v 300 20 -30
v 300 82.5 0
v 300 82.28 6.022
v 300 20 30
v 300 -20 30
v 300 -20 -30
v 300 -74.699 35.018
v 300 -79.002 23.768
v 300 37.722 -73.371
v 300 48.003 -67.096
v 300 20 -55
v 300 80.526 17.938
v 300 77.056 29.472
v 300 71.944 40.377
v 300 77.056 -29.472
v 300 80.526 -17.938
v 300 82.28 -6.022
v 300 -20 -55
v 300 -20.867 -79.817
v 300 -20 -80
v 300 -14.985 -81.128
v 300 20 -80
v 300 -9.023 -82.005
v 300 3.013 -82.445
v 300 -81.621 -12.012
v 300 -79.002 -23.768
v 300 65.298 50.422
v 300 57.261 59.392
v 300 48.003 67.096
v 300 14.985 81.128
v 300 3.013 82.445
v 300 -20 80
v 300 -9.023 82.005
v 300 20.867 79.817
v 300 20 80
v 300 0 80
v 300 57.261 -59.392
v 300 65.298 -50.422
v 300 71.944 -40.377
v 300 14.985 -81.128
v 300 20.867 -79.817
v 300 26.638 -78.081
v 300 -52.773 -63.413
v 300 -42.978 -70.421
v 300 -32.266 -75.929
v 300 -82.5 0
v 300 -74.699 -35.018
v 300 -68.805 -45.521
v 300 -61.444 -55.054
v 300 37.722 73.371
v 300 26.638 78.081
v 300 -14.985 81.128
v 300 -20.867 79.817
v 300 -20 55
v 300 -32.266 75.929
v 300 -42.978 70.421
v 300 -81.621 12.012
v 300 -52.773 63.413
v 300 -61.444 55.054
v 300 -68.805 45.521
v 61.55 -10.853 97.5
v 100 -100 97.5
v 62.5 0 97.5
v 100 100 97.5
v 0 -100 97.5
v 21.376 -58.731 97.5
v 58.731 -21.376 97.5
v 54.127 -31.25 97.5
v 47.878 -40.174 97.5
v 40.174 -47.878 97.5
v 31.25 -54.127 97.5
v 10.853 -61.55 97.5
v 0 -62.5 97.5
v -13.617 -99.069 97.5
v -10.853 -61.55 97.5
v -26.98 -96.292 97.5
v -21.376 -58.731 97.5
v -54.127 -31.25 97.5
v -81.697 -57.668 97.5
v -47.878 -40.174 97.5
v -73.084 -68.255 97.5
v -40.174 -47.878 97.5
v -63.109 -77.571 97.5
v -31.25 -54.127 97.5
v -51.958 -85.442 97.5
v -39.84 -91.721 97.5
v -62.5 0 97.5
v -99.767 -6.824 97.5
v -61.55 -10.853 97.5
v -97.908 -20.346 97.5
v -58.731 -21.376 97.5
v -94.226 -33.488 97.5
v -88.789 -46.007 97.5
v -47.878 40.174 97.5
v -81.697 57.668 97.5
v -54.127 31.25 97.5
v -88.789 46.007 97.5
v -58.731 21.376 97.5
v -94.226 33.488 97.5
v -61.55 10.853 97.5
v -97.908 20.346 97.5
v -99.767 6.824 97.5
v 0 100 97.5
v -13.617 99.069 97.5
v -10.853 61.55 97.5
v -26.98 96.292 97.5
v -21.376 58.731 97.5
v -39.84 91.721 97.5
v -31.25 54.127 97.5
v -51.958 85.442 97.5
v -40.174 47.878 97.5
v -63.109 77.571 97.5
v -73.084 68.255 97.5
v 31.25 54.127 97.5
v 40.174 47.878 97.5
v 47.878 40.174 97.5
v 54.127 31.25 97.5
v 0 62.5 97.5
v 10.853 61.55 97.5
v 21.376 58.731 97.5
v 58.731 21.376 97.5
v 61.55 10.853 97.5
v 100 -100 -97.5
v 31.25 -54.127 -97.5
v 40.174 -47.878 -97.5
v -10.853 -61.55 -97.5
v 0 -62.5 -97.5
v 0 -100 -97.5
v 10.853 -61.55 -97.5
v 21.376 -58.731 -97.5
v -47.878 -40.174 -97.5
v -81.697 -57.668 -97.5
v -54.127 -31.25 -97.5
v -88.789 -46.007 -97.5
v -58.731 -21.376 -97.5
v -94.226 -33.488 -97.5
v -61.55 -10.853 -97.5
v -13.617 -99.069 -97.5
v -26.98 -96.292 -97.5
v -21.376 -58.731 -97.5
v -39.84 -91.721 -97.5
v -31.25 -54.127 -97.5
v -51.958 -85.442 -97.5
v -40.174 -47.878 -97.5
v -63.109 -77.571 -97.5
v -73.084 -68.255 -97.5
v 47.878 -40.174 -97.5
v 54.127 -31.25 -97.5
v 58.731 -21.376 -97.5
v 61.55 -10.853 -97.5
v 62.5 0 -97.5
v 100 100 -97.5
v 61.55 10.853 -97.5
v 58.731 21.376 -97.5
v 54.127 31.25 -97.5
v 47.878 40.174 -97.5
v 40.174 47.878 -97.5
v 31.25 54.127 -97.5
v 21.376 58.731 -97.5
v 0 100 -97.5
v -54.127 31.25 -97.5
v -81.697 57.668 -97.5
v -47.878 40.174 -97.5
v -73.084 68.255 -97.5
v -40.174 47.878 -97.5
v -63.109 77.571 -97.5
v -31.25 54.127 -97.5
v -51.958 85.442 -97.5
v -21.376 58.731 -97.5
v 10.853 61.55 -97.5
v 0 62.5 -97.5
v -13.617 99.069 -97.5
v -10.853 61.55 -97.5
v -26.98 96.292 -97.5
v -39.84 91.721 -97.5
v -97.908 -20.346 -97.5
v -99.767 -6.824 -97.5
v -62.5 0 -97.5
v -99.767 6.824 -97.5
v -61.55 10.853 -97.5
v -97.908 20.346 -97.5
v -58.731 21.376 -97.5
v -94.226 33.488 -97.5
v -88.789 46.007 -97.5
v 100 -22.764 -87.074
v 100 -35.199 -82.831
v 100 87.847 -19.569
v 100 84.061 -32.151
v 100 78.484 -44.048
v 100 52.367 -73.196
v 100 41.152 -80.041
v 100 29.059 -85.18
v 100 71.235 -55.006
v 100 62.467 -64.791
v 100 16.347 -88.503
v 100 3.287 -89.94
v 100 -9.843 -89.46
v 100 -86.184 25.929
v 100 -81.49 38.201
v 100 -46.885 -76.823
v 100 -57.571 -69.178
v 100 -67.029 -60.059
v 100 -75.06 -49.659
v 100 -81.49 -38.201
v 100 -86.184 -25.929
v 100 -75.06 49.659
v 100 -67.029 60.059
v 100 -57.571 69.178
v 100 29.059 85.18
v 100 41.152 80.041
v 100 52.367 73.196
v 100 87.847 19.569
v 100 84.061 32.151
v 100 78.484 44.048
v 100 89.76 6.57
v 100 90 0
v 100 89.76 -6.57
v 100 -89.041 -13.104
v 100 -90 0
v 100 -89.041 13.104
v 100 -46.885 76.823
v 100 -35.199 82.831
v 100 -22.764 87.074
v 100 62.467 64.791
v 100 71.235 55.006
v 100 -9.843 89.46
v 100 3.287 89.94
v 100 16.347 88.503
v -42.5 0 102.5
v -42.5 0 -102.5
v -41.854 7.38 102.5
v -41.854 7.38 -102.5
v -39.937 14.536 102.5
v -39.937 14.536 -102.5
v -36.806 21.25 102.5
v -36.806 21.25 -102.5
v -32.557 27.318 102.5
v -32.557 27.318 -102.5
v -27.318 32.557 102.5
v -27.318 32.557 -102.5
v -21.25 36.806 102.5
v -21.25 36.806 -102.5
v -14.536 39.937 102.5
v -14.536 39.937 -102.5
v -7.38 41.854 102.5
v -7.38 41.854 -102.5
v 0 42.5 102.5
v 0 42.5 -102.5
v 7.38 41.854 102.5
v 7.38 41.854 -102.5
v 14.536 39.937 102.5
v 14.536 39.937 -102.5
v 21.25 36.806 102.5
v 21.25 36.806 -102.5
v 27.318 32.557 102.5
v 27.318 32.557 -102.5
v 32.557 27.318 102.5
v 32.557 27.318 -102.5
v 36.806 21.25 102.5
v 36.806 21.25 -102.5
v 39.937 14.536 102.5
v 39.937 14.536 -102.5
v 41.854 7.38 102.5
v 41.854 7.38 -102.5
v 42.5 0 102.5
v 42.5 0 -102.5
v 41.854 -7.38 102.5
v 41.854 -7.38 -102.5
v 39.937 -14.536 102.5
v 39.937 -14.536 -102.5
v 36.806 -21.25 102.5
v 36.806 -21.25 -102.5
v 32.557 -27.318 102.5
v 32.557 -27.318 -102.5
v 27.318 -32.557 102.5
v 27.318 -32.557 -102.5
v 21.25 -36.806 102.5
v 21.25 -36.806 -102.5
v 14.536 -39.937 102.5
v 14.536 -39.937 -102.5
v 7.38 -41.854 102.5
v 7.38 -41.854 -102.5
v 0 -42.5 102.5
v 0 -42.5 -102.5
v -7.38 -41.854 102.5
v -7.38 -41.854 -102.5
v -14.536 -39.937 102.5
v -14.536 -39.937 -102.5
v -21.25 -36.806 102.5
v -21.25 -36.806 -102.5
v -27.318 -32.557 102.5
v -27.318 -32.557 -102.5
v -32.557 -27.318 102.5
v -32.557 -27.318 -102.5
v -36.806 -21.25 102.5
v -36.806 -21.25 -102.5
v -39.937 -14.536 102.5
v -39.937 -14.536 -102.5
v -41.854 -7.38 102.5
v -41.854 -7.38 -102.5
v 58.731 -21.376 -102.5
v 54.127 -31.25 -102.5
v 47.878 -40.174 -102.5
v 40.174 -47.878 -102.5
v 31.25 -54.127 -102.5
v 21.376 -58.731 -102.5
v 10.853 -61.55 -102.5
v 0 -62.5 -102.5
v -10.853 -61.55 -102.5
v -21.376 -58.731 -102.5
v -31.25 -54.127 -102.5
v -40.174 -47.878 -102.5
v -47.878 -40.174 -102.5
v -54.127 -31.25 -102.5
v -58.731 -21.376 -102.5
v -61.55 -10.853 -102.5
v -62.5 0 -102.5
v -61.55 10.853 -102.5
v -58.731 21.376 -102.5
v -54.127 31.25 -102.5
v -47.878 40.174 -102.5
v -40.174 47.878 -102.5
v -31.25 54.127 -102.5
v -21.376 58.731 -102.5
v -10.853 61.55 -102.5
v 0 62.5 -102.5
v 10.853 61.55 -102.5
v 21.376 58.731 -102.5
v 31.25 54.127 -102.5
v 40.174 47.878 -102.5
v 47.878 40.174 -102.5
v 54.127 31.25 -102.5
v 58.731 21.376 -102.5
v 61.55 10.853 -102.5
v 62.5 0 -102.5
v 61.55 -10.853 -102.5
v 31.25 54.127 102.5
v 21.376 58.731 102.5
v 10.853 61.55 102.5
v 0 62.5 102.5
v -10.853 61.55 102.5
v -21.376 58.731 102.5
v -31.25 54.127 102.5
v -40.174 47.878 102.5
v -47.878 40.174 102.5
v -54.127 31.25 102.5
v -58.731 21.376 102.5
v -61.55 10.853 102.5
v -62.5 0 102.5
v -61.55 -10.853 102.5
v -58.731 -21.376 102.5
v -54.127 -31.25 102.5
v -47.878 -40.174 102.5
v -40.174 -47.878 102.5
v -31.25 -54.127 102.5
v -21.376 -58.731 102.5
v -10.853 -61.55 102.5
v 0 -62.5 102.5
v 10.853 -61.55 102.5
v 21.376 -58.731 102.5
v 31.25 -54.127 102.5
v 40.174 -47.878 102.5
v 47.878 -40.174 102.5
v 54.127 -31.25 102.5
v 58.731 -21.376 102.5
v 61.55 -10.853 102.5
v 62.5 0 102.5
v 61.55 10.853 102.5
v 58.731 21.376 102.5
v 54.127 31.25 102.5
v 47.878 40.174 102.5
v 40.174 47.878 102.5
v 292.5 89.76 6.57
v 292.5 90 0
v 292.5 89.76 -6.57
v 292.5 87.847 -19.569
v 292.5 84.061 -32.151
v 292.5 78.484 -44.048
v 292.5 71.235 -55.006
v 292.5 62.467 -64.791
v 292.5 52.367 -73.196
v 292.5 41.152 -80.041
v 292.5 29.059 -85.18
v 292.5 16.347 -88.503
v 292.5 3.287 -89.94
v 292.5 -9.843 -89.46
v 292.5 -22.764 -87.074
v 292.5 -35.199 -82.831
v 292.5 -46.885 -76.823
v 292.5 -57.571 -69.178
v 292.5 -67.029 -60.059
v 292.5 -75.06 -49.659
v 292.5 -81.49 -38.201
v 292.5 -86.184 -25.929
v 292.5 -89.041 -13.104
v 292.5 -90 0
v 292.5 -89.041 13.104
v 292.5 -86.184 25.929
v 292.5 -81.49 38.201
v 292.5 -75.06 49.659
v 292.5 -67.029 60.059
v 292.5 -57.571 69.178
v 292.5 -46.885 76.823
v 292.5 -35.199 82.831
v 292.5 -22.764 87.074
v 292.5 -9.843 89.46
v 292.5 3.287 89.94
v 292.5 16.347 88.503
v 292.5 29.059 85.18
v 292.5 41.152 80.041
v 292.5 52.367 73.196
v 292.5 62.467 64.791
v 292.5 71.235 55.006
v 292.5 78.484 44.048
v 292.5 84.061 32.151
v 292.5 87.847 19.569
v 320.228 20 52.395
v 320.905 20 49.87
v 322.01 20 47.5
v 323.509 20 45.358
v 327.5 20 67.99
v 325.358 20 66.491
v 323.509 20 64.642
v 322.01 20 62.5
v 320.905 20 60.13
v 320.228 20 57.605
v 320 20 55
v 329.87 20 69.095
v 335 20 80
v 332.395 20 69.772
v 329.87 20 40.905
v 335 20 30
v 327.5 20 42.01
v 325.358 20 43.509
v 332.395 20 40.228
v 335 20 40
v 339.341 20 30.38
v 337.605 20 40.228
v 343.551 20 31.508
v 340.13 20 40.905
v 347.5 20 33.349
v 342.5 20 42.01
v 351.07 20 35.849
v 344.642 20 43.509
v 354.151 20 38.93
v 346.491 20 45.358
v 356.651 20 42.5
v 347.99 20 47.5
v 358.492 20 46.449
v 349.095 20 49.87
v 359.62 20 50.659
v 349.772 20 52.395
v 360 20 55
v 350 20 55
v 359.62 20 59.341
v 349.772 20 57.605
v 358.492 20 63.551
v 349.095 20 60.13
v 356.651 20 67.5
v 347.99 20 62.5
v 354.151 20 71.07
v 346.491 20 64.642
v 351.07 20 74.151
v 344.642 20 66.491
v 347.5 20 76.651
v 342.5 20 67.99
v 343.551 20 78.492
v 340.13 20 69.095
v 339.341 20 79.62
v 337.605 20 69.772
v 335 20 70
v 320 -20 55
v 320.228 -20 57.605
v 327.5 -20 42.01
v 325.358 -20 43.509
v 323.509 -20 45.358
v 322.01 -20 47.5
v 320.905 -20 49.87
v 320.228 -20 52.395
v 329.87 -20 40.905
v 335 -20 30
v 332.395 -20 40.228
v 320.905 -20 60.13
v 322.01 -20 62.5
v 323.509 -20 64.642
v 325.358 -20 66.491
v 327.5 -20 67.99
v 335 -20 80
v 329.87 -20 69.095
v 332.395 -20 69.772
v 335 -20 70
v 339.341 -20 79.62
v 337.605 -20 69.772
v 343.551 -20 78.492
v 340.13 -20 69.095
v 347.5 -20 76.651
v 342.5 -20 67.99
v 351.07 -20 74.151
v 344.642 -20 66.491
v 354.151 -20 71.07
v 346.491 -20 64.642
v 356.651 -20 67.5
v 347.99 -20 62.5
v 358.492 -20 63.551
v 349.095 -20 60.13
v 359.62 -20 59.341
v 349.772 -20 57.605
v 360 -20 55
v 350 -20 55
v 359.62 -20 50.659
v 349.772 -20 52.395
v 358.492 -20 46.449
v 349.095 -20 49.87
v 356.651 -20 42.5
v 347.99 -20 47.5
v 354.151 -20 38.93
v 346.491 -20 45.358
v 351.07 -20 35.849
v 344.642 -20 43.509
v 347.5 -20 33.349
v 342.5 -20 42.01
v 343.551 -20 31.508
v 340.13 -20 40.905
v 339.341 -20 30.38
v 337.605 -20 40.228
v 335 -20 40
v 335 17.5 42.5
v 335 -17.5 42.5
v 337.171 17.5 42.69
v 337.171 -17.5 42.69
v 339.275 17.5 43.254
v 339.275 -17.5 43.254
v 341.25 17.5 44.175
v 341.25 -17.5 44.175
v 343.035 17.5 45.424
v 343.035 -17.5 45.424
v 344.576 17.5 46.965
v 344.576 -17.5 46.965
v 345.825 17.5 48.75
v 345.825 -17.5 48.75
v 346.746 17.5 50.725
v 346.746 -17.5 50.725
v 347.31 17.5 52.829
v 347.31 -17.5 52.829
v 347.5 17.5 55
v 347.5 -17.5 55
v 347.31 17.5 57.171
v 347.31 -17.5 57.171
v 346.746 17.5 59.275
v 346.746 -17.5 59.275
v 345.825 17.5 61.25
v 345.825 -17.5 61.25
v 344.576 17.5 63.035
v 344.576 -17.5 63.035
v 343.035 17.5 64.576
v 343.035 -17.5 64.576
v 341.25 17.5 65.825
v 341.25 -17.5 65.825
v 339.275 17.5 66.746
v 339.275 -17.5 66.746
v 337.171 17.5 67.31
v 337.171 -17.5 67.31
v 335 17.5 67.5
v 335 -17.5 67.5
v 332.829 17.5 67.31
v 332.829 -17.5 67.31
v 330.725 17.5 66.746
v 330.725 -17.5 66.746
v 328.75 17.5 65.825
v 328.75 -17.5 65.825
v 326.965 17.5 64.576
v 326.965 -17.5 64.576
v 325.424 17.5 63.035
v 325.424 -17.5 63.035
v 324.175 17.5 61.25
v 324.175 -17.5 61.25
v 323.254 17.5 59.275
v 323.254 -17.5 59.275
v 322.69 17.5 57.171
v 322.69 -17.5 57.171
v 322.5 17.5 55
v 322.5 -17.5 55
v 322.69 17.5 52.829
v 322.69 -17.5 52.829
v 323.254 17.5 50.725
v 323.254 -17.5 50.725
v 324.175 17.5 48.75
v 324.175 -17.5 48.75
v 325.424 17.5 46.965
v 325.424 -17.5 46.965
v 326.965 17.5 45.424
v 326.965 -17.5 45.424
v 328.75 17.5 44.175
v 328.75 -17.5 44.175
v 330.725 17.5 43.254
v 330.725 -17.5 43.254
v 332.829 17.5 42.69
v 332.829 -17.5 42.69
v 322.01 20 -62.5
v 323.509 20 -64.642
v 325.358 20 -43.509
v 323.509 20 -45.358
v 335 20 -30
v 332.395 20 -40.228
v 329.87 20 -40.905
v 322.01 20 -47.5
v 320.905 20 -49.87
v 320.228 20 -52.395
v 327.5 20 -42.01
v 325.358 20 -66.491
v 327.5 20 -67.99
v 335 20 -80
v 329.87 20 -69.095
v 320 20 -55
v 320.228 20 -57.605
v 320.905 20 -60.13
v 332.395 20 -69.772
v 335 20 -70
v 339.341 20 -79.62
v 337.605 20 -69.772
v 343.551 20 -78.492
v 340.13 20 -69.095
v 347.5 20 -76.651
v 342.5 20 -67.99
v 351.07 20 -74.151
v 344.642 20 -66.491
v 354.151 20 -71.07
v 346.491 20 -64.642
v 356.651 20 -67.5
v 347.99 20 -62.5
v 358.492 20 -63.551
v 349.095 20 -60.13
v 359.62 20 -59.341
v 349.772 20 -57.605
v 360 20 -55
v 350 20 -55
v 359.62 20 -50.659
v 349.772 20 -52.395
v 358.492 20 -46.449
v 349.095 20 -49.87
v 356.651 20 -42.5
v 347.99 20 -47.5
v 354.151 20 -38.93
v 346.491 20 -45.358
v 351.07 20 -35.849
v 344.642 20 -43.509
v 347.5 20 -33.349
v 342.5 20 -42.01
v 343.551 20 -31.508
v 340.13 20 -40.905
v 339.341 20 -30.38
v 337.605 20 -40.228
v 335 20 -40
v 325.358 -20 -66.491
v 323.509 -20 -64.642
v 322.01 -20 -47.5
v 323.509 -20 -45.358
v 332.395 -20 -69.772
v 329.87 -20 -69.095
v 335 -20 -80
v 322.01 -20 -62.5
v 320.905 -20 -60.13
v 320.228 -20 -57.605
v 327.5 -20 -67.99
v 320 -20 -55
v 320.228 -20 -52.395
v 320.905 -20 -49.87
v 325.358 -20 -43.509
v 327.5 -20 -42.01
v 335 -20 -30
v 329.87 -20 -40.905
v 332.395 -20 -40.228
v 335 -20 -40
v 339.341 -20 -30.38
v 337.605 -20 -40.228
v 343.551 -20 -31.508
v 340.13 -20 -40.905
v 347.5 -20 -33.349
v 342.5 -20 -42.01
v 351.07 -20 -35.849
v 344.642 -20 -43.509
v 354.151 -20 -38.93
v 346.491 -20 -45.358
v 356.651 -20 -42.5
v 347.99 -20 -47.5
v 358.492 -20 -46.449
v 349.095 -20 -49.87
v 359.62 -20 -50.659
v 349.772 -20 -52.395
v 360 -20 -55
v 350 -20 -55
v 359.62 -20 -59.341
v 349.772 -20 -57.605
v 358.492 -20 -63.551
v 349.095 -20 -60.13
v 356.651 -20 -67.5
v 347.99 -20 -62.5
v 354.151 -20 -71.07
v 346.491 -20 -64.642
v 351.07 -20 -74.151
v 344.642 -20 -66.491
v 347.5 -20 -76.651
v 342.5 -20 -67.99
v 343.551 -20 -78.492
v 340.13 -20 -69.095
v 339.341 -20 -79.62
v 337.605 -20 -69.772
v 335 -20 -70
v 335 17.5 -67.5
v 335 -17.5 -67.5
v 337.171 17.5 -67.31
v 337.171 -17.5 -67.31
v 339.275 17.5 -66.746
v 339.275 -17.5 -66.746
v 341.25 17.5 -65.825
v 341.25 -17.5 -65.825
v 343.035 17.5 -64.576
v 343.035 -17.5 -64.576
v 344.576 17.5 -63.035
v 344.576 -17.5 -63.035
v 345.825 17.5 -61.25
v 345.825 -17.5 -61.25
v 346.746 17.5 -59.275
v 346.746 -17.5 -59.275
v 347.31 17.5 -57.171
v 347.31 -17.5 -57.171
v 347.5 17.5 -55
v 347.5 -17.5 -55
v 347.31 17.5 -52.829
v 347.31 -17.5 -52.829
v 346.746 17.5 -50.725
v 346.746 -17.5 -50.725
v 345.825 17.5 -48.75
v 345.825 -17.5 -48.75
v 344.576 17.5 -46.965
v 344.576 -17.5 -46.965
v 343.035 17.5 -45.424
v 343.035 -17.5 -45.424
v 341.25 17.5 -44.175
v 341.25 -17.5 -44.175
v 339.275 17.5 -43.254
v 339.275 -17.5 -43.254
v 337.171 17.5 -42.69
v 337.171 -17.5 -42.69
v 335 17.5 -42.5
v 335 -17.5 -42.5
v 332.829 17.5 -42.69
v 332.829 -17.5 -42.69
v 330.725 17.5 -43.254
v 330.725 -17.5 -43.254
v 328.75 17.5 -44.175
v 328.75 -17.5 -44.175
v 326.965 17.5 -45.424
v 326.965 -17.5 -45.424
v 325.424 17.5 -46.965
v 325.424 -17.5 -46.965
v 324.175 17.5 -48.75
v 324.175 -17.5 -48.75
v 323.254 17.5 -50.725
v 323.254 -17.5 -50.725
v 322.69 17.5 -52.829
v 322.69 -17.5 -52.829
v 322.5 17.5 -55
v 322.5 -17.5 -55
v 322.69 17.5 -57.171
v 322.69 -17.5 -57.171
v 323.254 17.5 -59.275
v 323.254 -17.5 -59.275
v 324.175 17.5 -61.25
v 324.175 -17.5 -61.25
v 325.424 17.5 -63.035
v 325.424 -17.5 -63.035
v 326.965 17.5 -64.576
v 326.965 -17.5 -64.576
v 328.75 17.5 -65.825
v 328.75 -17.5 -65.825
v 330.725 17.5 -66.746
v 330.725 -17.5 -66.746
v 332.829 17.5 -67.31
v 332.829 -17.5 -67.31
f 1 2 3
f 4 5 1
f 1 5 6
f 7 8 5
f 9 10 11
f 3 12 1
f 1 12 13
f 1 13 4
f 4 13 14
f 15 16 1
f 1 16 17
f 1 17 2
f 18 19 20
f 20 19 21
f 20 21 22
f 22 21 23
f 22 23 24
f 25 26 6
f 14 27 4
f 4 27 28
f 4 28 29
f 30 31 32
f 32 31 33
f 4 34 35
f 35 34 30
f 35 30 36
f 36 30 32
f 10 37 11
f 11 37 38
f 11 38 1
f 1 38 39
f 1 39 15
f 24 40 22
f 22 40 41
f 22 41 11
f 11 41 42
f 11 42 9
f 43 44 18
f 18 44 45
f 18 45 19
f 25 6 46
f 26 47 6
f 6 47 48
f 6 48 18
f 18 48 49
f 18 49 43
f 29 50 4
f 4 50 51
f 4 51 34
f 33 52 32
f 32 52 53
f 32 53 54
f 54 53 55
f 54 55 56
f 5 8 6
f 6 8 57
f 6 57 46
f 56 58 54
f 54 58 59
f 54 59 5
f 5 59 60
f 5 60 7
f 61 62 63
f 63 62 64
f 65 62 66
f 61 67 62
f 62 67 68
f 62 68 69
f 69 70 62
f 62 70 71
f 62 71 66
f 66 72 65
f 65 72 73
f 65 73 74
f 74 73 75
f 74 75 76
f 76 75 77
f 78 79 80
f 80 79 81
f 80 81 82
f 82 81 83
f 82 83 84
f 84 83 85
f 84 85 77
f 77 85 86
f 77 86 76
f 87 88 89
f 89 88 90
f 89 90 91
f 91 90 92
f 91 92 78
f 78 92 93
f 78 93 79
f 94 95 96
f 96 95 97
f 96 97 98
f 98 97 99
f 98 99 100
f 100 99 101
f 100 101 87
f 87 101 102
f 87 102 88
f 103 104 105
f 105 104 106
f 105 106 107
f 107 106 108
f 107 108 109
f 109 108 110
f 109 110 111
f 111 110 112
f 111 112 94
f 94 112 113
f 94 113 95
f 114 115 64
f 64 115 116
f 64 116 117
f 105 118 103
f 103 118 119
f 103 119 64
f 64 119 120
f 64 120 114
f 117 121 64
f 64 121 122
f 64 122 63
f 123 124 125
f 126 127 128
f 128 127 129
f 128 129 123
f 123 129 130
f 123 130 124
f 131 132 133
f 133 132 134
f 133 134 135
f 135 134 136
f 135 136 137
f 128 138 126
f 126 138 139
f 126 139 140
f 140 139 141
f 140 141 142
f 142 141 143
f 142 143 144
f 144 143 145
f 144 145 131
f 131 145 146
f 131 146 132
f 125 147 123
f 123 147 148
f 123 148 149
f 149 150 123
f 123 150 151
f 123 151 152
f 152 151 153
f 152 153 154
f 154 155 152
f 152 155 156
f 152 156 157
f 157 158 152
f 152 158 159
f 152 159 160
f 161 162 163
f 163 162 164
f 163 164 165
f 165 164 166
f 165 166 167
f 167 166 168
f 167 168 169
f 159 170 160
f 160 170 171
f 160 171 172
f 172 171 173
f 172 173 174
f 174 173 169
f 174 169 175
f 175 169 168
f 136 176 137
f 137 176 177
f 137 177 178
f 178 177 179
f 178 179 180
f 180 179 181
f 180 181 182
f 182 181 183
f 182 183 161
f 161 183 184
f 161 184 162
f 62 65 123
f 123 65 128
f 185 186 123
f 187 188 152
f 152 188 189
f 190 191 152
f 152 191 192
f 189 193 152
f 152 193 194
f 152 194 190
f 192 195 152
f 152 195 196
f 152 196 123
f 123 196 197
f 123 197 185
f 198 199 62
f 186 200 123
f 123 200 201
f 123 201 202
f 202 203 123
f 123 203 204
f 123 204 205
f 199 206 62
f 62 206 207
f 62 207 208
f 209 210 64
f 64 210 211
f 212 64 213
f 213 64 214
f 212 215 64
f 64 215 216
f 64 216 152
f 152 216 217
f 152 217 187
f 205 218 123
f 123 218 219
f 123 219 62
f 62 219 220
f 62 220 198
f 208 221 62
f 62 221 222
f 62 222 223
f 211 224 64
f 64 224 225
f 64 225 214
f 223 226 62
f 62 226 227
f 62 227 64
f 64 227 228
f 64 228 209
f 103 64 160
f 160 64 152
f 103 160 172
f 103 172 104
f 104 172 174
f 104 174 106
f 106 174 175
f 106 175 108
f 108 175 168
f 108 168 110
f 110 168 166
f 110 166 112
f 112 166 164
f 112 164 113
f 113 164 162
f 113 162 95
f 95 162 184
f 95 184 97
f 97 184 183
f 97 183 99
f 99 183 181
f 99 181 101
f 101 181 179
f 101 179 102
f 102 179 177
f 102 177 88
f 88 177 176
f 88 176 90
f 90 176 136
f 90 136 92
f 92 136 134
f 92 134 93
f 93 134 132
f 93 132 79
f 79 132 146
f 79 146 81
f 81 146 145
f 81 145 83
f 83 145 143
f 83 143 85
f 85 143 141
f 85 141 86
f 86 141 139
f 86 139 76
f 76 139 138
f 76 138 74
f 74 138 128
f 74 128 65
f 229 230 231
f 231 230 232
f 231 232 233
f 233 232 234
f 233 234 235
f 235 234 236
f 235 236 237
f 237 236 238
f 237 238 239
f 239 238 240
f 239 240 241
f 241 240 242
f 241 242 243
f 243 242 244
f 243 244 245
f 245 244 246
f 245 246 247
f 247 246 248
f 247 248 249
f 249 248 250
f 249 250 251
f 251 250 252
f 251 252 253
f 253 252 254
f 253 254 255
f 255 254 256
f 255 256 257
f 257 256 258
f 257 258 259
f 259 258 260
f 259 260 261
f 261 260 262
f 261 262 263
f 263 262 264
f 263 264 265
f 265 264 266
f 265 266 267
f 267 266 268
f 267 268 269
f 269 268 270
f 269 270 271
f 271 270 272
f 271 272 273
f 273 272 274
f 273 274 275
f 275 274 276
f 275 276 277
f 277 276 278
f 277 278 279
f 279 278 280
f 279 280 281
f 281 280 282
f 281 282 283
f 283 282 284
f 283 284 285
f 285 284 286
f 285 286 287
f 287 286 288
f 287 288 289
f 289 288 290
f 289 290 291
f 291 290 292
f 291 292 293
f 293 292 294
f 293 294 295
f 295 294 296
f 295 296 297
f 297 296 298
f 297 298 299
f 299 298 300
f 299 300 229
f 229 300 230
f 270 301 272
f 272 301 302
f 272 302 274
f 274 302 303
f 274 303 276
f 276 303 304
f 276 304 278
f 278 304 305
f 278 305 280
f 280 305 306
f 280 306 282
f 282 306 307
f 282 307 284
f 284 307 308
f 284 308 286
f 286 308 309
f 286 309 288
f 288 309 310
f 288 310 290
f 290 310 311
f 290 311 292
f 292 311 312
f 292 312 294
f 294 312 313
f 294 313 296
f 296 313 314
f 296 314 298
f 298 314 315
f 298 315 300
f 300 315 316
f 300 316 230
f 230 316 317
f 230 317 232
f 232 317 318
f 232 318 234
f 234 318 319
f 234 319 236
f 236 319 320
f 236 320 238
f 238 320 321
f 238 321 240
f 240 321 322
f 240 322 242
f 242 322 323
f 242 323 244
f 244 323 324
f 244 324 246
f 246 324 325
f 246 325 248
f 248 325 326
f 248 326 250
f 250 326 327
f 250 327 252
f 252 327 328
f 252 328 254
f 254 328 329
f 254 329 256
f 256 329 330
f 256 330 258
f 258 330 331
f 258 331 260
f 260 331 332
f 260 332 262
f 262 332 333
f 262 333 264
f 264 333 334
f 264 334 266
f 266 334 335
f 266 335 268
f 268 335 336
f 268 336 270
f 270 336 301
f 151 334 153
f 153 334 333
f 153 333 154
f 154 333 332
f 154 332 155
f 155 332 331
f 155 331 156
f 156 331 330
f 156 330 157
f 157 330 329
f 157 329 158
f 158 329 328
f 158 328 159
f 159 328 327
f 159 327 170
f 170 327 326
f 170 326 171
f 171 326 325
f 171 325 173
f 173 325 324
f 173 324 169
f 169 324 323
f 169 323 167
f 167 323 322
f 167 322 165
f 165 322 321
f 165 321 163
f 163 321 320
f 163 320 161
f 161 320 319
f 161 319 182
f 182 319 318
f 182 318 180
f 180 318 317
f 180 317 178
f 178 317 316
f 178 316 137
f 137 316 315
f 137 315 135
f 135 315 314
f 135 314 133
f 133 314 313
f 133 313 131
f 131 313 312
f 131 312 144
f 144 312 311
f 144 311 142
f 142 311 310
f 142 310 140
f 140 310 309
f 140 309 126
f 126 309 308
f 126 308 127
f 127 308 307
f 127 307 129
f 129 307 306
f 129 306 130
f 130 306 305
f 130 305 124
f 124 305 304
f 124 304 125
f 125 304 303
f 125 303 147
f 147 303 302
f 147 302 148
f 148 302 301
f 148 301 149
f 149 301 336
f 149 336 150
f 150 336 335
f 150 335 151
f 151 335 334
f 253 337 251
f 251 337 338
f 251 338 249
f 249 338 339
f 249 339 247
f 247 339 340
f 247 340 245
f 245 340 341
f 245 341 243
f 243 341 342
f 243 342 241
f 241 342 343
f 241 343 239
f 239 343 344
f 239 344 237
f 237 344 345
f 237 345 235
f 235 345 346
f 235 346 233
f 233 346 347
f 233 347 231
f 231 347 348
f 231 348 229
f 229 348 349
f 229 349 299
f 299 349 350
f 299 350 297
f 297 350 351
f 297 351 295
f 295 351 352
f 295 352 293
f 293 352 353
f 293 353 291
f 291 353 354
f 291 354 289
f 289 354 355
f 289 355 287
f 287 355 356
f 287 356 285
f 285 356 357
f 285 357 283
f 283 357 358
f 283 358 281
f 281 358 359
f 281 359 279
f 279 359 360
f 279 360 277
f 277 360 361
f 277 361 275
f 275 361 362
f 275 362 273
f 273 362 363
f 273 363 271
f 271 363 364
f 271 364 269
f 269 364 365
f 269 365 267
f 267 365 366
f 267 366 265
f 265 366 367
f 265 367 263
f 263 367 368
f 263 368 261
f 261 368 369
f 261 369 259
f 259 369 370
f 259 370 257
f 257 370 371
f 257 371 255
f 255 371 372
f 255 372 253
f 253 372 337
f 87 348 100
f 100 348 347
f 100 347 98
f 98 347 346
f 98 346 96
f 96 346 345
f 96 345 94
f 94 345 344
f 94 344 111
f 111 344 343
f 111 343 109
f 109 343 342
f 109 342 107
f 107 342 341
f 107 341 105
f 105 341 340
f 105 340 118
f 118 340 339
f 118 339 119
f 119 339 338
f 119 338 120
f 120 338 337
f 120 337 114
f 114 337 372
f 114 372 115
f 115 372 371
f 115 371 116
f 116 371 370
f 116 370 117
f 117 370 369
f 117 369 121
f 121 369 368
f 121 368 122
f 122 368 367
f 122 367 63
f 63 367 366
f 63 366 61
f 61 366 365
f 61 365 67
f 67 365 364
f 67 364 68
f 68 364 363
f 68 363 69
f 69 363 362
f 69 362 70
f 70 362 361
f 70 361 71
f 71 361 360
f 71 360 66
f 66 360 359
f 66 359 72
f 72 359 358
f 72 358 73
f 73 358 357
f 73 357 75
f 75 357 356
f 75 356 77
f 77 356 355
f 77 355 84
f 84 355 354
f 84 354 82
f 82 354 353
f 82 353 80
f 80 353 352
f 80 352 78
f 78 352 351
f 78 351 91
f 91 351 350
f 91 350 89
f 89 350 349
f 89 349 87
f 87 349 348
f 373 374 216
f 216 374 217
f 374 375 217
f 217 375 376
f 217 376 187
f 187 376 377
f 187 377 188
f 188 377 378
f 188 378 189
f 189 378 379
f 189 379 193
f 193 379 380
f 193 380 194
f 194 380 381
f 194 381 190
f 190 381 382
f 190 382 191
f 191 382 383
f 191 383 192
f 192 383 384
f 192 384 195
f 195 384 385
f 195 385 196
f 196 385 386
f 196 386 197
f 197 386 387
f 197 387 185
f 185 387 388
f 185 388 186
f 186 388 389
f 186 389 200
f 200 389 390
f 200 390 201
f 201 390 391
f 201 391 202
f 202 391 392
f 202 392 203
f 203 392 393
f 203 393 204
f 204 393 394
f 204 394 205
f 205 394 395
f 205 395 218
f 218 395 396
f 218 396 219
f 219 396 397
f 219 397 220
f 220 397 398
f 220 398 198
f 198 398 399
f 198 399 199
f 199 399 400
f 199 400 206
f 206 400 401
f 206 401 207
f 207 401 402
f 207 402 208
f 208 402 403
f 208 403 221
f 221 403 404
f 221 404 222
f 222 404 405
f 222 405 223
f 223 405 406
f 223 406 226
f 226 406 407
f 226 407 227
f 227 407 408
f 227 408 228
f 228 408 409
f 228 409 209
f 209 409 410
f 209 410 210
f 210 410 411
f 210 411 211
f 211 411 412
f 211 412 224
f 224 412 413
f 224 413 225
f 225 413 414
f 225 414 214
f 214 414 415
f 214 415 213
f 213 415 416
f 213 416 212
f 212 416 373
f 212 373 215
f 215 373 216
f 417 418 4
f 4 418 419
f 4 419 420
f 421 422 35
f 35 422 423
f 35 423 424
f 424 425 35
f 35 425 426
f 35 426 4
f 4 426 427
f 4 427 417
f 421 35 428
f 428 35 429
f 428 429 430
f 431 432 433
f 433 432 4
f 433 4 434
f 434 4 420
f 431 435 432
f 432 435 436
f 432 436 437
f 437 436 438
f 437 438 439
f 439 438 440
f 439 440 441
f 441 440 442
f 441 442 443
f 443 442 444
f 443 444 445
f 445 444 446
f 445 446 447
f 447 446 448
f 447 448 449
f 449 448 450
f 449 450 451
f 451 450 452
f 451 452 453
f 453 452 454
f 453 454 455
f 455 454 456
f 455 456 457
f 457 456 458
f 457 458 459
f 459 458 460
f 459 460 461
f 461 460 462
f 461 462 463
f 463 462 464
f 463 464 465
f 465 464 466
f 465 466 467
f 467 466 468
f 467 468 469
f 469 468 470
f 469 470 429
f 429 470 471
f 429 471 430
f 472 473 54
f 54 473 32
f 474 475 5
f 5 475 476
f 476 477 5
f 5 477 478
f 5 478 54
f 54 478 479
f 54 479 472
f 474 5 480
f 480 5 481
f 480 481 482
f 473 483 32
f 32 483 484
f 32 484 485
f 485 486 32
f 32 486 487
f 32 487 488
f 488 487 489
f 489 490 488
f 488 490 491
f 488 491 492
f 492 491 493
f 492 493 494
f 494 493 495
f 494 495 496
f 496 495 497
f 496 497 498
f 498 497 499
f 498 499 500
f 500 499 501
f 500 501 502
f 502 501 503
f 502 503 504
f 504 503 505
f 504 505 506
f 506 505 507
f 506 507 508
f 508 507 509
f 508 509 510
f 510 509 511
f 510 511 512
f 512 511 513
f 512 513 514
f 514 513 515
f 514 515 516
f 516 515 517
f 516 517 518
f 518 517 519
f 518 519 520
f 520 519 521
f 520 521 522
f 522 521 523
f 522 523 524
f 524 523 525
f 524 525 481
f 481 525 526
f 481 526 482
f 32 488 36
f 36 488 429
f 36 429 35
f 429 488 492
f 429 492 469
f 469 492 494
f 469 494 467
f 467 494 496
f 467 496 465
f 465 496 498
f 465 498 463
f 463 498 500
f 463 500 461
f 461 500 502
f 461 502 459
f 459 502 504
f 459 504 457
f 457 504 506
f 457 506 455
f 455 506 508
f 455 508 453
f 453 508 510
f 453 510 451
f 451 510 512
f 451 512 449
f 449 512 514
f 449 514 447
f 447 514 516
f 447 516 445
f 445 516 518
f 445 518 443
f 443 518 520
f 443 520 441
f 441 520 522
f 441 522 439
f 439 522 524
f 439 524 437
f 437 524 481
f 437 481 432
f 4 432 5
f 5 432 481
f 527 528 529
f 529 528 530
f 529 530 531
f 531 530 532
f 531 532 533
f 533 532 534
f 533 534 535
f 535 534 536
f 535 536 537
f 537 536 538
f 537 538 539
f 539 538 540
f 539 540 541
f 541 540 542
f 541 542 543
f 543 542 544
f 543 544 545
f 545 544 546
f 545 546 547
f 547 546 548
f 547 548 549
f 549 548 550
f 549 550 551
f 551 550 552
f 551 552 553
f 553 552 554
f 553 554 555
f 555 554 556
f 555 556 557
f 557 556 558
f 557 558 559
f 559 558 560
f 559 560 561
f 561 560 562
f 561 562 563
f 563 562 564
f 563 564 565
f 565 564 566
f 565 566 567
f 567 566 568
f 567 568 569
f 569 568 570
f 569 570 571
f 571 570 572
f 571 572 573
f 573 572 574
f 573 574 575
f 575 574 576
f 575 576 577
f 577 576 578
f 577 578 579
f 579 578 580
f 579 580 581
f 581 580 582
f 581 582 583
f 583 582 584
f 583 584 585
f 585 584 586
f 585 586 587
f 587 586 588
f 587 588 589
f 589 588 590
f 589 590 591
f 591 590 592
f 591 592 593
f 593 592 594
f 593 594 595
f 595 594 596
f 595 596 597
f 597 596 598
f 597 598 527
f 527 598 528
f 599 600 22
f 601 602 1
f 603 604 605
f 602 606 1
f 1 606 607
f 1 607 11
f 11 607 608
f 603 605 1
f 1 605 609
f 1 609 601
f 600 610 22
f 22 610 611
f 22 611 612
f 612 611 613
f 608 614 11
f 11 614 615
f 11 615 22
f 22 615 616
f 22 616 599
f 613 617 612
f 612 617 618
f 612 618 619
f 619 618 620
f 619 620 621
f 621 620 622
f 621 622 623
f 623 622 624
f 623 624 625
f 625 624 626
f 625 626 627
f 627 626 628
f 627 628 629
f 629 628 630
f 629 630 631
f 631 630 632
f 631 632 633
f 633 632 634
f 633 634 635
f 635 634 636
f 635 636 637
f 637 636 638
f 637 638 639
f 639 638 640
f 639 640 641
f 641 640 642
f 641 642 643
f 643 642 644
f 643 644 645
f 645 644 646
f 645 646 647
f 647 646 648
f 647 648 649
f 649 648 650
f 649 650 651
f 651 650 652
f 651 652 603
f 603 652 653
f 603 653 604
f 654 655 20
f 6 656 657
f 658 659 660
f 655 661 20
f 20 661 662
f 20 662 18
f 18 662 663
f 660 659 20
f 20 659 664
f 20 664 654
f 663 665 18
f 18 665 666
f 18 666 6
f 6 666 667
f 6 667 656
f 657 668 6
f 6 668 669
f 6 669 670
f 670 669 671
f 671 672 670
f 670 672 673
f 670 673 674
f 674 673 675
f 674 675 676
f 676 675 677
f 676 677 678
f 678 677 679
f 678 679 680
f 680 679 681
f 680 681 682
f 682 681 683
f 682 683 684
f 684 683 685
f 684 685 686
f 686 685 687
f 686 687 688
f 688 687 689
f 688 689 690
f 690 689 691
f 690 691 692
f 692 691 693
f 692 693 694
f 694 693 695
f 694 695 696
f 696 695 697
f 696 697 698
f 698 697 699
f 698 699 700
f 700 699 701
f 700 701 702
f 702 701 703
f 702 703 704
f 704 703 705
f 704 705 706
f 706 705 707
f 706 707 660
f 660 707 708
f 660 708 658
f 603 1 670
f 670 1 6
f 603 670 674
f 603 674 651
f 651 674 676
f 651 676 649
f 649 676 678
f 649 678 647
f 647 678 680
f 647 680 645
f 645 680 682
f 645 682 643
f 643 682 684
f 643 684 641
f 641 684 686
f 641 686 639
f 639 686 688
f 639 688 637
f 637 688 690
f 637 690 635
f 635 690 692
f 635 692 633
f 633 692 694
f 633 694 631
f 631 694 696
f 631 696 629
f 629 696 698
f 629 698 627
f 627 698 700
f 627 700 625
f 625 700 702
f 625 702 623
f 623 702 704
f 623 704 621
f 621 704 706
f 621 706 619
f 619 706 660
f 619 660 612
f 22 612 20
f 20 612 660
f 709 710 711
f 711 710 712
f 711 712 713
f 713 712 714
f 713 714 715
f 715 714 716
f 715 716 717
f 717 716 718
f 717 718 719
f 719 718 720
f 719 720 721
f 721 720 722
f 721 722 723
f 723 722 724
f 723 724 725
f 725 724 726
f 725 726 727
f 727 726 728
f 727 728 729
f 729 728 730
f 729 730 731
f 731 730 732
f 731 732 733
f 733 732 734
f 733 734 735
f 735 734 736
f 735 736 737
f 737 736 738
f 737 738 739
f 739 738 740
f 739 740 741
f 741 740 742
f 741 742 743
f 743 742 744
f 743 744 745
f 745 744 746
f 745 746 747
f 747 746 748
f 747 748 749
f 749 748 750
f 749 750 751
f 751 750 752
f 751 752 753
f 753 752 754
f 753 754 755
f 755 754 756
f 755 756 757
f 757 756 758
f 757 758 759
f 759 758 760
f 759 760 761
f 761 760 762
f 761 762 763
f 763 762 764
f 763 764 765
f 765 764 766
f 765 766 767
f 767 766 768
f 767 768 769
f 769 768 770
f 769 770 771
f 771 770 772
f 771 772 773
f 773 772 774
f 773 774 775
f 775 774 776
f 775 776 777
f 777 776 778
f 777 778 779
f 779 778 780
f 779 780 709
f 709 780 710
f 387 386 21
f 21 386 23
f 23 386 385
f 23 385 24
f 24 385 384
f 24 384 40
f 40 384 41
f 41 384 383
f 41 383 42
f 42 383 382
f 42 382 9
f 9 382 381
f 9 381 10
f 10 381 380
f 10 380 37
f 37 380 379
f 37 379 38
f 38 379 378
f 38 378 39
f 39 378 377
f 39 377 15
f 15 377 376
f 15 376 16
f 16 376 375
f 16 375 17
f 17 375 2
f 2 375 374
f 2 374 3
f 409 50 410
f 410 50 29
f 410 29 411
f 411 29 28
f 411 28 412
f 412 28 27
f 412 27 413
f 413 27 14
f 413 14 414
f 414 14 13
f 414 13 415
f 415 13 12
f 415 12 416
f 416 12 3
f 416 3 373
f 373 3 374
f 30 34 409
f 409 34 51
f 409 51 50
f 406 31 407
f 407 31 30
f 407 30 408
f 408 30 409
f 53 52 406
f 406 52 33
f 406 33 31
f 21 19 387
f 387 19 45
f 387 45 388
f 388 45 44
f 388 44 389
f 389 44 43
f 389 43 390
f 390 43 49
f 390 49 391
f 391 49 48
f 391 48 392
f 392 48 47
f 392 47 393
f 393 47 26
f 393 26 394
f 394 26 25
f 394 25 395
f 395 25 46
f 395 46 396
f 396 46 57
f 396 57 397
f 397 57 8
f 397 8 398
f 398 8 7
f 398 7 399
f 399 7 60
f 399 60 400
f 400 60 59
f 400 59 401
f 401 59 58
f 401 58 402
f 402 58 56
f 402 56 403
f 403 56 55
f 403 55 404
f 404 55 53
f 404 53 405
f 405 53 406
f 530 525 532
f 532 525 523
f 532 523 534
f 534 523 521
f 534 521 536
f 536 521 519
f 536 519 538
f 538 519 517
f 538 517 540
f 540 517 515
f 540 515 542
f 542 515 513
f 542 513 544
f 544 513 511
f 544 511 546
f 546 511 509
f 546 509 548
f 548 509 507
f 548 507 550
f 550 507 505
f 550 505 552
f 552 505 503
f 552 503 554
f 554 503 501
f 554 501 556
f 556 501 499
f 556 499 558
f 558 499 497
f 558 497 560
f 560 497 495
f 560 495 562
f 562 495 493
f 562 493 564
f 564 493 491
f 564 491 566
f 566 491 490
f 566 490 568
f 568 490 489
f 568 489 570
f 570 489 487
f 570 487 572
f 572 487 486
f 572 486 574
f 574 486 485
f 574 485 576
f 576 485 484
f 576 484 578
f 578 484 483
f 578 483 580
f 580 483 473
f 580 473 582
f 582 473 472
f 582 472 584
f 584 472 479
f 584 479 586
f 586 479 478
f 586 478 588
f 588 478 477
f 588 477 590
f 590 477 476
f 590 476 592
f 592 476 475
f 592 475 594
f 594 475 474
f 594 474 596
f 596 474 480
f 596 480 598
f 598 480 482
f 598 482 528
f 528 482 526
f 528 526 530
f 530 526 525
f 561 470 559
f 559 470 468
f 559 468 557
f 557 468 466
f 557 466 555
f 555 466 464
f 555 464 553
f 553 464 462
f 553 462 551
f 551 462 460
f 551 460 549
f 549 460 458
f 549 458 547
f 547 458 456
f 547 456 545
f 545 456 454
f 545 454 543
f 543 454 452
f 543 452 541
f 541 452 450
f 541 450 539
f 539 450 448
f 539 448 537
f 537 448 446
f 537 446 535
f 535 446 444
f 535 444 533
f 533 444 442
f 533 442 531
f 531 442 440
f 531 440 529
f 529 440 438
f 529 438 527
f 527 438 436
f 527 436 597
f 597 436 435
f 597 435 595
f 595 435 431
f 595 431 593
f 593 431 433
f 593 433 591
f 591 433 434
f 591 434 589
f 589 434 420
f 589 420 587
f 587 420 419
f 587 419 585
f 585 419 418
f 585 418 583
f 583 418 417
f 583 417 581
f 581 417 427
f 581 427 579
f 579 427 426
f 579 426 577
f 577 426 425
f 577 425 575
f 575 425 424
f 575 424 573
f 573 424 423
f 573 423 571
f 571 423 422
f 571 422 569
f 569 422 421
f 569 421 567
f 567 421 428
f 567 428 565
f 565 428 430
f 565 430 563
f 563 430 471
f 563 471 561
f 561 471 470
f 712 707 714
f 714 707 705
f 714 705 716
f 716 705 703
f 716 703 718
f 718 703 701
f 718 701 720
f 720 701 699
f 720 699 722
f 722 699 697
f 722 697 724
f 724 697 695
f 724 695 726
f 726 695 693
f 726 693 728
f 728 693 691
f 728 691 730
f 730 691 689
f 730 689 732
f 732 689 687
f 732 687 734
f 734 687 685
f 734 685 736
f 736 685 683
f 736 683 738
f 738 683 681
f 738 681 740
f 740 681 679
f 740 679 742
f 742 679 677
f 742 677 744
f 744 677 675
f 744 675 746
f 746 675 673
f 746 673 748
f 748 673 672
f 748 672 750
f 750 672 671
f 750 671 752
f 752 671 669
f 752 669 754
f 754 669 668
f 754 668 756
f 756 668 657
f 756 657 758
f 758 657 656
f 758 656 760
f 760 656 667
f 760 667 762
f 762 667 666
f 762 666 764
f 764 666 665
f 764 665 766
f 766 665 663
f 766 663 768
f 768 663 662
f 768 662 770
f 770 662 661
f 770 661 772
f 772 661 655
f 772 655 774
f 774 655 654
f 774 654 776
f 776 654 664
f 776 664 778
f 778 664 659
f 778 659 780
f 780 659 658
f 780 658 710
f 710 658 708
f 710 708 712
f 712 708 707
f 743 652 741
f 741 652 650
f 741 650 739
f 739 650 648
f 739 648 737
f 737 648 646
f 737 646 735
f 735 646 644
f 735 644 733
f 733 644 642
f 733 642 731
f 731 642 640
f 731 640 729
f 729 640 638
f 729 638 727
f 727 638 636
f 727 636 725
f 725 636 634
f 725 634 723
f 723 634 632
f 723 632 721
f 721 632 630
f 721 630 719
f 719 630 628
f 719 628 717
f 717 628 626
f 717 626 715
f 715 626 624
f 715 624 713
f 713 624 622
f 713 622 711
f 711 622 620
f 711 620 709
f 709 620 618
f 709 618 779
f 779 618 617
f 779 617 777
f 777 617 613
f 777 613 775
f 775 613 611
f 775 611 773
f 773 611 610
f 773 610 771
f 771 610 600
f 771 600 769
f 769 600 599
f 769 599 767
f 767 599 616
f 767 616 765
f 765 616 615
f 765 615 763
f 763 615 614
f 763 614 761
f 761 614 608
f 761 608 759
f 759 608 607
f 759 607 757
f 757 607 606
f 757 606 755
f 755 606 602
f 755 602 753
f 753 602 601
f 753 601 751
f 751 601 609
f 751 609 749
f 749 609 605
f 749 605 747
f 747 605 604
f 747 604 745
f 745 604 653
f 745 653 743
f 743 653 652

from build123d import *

# Parameters (mm, degrees)
SKETCH1_R           = 42.5
BOSS_EXTRUDE1_DEPTH = 97.5
SKETCH2_R           = 62.5
SKETCH2_R_2         = 42.5
BOSS_EXTRUDE2_DEPTH = 5
SKETCH3_R           = 62.5
SKETCH3_R_2         = 42.5
BOSS_EXTRUDE3_DEPTH = 5
SKETCH4_R           = 90
BOSS_EXTRUDE4_DEPTH = 200
SKETCH6_R           = 12.5
BOSS_EXTRUDE5_DEPTH = 20
CHAMFER1_SIZE       = 7.5
CHAMFER2_SIZE       = 2.5


with BuildPart() as part:
    # Sketch1 → Boss-Extrude1 (new body, symmetric)
    with BuildSketch(Plane.XY):
        with BuildLine():
            Line((100, 100), (100, -100))
            Line((100, -100), (0, -100))
            ThreePointArc((0, -100), (-100, 0), (0, 100))
            Line((0, 100), (100, 100))
        make_face()
        Circle(SKETCH1_R, mode=Mode.SUBTRACT)
    extrude(amount=BOSS_EXTRUDE1_DEPTH, both=True)

    # Sketch2 → Boss-Extrude2 (add)
    with BuildSketch(Plane(origin=(0, 0, -97.5), x_dir=(-1, 0, 0), z_dir=(0, 0, -1))):
        Circle(SKETCH2_R)
        Circle(SKETCH2_R_2, mode=Mode.SUBTRACT)
    extrude(amount=BOSS_EXTRUDE2_DEPTH)

    # Sketch3 → Boss-Extrude3 (add)
    with BuildSketch(Plane.XY.offset(97.5)):
        Circle(SKETCH3_R)
        Circle(SKETCH3_R_2, mode=Mode.SUBTRACT)
    extrude(amount=BOSS_EXTRUDE3_DEPTH)

    # Sketch4 → Boss-Extrude4 (add)
    with BuildSketch(Plane(origin=(100, 0, 0), x_dir=(0, 0, -1), z_dir=(1, 0, 0))):
        Circle(SKETCH4_R)
    extrude(amount=BOSS_EXTRUDE4_DEPTH)

    # Sketch6 → Boss-Extrude5 (add, symmetric)
    with BuildSketch(Plane(origin=(0, 0, 0), x_dir=(1, 0, 0), z_dir=(0, 1, 0))):
        with BuildLine():
            Line((300, -80), (335, -80))
            ThreePointArc((335, -80), (360, -55), (335, -30))
            Line((335, -30), (300, -30))
            Line((300, -30), (300, -80))
        make_face()
        with Locations((335, -55)):
            Circle(SKETCH6_R, mode=Mode.SUBTRACT)
        with BuildLine():
            Line((300, 80), (335, 80))
            ThreePointArc((335, 80), (360, 55), (335, 30))
            Line((335, 30), (300, 30))
            Line((300, 30), (300, 80))
        make_face()
        with Locations((335, 55)):
            Circle(SKETCH6_R, mode=Mode.SUBTRACT)
    extrude(amount=BOSS_EXTRUDE5_DEPTH, both=True)

    # Chamfer1
    chamfer1_edges = [part.edges().sort_by_distance(p)[0] for p in [
        (300, 0, 90),
    ]]
    chamfer(chamfer1_edges, length=CHAMFER1_SIZE)

    # Chamfer2
    chamfer2_edges = [part.edges().sort_by_distance(p)[0] for p in [
        (322.5, -20, 55),
        (322.5, 20, 55),
        (322.5, -20, -55),
        (322.5, 20, -55),
    ]]
    chamfer(chamfer2_edges, length=CHAMFER2_SIZE)


solid = part.part
